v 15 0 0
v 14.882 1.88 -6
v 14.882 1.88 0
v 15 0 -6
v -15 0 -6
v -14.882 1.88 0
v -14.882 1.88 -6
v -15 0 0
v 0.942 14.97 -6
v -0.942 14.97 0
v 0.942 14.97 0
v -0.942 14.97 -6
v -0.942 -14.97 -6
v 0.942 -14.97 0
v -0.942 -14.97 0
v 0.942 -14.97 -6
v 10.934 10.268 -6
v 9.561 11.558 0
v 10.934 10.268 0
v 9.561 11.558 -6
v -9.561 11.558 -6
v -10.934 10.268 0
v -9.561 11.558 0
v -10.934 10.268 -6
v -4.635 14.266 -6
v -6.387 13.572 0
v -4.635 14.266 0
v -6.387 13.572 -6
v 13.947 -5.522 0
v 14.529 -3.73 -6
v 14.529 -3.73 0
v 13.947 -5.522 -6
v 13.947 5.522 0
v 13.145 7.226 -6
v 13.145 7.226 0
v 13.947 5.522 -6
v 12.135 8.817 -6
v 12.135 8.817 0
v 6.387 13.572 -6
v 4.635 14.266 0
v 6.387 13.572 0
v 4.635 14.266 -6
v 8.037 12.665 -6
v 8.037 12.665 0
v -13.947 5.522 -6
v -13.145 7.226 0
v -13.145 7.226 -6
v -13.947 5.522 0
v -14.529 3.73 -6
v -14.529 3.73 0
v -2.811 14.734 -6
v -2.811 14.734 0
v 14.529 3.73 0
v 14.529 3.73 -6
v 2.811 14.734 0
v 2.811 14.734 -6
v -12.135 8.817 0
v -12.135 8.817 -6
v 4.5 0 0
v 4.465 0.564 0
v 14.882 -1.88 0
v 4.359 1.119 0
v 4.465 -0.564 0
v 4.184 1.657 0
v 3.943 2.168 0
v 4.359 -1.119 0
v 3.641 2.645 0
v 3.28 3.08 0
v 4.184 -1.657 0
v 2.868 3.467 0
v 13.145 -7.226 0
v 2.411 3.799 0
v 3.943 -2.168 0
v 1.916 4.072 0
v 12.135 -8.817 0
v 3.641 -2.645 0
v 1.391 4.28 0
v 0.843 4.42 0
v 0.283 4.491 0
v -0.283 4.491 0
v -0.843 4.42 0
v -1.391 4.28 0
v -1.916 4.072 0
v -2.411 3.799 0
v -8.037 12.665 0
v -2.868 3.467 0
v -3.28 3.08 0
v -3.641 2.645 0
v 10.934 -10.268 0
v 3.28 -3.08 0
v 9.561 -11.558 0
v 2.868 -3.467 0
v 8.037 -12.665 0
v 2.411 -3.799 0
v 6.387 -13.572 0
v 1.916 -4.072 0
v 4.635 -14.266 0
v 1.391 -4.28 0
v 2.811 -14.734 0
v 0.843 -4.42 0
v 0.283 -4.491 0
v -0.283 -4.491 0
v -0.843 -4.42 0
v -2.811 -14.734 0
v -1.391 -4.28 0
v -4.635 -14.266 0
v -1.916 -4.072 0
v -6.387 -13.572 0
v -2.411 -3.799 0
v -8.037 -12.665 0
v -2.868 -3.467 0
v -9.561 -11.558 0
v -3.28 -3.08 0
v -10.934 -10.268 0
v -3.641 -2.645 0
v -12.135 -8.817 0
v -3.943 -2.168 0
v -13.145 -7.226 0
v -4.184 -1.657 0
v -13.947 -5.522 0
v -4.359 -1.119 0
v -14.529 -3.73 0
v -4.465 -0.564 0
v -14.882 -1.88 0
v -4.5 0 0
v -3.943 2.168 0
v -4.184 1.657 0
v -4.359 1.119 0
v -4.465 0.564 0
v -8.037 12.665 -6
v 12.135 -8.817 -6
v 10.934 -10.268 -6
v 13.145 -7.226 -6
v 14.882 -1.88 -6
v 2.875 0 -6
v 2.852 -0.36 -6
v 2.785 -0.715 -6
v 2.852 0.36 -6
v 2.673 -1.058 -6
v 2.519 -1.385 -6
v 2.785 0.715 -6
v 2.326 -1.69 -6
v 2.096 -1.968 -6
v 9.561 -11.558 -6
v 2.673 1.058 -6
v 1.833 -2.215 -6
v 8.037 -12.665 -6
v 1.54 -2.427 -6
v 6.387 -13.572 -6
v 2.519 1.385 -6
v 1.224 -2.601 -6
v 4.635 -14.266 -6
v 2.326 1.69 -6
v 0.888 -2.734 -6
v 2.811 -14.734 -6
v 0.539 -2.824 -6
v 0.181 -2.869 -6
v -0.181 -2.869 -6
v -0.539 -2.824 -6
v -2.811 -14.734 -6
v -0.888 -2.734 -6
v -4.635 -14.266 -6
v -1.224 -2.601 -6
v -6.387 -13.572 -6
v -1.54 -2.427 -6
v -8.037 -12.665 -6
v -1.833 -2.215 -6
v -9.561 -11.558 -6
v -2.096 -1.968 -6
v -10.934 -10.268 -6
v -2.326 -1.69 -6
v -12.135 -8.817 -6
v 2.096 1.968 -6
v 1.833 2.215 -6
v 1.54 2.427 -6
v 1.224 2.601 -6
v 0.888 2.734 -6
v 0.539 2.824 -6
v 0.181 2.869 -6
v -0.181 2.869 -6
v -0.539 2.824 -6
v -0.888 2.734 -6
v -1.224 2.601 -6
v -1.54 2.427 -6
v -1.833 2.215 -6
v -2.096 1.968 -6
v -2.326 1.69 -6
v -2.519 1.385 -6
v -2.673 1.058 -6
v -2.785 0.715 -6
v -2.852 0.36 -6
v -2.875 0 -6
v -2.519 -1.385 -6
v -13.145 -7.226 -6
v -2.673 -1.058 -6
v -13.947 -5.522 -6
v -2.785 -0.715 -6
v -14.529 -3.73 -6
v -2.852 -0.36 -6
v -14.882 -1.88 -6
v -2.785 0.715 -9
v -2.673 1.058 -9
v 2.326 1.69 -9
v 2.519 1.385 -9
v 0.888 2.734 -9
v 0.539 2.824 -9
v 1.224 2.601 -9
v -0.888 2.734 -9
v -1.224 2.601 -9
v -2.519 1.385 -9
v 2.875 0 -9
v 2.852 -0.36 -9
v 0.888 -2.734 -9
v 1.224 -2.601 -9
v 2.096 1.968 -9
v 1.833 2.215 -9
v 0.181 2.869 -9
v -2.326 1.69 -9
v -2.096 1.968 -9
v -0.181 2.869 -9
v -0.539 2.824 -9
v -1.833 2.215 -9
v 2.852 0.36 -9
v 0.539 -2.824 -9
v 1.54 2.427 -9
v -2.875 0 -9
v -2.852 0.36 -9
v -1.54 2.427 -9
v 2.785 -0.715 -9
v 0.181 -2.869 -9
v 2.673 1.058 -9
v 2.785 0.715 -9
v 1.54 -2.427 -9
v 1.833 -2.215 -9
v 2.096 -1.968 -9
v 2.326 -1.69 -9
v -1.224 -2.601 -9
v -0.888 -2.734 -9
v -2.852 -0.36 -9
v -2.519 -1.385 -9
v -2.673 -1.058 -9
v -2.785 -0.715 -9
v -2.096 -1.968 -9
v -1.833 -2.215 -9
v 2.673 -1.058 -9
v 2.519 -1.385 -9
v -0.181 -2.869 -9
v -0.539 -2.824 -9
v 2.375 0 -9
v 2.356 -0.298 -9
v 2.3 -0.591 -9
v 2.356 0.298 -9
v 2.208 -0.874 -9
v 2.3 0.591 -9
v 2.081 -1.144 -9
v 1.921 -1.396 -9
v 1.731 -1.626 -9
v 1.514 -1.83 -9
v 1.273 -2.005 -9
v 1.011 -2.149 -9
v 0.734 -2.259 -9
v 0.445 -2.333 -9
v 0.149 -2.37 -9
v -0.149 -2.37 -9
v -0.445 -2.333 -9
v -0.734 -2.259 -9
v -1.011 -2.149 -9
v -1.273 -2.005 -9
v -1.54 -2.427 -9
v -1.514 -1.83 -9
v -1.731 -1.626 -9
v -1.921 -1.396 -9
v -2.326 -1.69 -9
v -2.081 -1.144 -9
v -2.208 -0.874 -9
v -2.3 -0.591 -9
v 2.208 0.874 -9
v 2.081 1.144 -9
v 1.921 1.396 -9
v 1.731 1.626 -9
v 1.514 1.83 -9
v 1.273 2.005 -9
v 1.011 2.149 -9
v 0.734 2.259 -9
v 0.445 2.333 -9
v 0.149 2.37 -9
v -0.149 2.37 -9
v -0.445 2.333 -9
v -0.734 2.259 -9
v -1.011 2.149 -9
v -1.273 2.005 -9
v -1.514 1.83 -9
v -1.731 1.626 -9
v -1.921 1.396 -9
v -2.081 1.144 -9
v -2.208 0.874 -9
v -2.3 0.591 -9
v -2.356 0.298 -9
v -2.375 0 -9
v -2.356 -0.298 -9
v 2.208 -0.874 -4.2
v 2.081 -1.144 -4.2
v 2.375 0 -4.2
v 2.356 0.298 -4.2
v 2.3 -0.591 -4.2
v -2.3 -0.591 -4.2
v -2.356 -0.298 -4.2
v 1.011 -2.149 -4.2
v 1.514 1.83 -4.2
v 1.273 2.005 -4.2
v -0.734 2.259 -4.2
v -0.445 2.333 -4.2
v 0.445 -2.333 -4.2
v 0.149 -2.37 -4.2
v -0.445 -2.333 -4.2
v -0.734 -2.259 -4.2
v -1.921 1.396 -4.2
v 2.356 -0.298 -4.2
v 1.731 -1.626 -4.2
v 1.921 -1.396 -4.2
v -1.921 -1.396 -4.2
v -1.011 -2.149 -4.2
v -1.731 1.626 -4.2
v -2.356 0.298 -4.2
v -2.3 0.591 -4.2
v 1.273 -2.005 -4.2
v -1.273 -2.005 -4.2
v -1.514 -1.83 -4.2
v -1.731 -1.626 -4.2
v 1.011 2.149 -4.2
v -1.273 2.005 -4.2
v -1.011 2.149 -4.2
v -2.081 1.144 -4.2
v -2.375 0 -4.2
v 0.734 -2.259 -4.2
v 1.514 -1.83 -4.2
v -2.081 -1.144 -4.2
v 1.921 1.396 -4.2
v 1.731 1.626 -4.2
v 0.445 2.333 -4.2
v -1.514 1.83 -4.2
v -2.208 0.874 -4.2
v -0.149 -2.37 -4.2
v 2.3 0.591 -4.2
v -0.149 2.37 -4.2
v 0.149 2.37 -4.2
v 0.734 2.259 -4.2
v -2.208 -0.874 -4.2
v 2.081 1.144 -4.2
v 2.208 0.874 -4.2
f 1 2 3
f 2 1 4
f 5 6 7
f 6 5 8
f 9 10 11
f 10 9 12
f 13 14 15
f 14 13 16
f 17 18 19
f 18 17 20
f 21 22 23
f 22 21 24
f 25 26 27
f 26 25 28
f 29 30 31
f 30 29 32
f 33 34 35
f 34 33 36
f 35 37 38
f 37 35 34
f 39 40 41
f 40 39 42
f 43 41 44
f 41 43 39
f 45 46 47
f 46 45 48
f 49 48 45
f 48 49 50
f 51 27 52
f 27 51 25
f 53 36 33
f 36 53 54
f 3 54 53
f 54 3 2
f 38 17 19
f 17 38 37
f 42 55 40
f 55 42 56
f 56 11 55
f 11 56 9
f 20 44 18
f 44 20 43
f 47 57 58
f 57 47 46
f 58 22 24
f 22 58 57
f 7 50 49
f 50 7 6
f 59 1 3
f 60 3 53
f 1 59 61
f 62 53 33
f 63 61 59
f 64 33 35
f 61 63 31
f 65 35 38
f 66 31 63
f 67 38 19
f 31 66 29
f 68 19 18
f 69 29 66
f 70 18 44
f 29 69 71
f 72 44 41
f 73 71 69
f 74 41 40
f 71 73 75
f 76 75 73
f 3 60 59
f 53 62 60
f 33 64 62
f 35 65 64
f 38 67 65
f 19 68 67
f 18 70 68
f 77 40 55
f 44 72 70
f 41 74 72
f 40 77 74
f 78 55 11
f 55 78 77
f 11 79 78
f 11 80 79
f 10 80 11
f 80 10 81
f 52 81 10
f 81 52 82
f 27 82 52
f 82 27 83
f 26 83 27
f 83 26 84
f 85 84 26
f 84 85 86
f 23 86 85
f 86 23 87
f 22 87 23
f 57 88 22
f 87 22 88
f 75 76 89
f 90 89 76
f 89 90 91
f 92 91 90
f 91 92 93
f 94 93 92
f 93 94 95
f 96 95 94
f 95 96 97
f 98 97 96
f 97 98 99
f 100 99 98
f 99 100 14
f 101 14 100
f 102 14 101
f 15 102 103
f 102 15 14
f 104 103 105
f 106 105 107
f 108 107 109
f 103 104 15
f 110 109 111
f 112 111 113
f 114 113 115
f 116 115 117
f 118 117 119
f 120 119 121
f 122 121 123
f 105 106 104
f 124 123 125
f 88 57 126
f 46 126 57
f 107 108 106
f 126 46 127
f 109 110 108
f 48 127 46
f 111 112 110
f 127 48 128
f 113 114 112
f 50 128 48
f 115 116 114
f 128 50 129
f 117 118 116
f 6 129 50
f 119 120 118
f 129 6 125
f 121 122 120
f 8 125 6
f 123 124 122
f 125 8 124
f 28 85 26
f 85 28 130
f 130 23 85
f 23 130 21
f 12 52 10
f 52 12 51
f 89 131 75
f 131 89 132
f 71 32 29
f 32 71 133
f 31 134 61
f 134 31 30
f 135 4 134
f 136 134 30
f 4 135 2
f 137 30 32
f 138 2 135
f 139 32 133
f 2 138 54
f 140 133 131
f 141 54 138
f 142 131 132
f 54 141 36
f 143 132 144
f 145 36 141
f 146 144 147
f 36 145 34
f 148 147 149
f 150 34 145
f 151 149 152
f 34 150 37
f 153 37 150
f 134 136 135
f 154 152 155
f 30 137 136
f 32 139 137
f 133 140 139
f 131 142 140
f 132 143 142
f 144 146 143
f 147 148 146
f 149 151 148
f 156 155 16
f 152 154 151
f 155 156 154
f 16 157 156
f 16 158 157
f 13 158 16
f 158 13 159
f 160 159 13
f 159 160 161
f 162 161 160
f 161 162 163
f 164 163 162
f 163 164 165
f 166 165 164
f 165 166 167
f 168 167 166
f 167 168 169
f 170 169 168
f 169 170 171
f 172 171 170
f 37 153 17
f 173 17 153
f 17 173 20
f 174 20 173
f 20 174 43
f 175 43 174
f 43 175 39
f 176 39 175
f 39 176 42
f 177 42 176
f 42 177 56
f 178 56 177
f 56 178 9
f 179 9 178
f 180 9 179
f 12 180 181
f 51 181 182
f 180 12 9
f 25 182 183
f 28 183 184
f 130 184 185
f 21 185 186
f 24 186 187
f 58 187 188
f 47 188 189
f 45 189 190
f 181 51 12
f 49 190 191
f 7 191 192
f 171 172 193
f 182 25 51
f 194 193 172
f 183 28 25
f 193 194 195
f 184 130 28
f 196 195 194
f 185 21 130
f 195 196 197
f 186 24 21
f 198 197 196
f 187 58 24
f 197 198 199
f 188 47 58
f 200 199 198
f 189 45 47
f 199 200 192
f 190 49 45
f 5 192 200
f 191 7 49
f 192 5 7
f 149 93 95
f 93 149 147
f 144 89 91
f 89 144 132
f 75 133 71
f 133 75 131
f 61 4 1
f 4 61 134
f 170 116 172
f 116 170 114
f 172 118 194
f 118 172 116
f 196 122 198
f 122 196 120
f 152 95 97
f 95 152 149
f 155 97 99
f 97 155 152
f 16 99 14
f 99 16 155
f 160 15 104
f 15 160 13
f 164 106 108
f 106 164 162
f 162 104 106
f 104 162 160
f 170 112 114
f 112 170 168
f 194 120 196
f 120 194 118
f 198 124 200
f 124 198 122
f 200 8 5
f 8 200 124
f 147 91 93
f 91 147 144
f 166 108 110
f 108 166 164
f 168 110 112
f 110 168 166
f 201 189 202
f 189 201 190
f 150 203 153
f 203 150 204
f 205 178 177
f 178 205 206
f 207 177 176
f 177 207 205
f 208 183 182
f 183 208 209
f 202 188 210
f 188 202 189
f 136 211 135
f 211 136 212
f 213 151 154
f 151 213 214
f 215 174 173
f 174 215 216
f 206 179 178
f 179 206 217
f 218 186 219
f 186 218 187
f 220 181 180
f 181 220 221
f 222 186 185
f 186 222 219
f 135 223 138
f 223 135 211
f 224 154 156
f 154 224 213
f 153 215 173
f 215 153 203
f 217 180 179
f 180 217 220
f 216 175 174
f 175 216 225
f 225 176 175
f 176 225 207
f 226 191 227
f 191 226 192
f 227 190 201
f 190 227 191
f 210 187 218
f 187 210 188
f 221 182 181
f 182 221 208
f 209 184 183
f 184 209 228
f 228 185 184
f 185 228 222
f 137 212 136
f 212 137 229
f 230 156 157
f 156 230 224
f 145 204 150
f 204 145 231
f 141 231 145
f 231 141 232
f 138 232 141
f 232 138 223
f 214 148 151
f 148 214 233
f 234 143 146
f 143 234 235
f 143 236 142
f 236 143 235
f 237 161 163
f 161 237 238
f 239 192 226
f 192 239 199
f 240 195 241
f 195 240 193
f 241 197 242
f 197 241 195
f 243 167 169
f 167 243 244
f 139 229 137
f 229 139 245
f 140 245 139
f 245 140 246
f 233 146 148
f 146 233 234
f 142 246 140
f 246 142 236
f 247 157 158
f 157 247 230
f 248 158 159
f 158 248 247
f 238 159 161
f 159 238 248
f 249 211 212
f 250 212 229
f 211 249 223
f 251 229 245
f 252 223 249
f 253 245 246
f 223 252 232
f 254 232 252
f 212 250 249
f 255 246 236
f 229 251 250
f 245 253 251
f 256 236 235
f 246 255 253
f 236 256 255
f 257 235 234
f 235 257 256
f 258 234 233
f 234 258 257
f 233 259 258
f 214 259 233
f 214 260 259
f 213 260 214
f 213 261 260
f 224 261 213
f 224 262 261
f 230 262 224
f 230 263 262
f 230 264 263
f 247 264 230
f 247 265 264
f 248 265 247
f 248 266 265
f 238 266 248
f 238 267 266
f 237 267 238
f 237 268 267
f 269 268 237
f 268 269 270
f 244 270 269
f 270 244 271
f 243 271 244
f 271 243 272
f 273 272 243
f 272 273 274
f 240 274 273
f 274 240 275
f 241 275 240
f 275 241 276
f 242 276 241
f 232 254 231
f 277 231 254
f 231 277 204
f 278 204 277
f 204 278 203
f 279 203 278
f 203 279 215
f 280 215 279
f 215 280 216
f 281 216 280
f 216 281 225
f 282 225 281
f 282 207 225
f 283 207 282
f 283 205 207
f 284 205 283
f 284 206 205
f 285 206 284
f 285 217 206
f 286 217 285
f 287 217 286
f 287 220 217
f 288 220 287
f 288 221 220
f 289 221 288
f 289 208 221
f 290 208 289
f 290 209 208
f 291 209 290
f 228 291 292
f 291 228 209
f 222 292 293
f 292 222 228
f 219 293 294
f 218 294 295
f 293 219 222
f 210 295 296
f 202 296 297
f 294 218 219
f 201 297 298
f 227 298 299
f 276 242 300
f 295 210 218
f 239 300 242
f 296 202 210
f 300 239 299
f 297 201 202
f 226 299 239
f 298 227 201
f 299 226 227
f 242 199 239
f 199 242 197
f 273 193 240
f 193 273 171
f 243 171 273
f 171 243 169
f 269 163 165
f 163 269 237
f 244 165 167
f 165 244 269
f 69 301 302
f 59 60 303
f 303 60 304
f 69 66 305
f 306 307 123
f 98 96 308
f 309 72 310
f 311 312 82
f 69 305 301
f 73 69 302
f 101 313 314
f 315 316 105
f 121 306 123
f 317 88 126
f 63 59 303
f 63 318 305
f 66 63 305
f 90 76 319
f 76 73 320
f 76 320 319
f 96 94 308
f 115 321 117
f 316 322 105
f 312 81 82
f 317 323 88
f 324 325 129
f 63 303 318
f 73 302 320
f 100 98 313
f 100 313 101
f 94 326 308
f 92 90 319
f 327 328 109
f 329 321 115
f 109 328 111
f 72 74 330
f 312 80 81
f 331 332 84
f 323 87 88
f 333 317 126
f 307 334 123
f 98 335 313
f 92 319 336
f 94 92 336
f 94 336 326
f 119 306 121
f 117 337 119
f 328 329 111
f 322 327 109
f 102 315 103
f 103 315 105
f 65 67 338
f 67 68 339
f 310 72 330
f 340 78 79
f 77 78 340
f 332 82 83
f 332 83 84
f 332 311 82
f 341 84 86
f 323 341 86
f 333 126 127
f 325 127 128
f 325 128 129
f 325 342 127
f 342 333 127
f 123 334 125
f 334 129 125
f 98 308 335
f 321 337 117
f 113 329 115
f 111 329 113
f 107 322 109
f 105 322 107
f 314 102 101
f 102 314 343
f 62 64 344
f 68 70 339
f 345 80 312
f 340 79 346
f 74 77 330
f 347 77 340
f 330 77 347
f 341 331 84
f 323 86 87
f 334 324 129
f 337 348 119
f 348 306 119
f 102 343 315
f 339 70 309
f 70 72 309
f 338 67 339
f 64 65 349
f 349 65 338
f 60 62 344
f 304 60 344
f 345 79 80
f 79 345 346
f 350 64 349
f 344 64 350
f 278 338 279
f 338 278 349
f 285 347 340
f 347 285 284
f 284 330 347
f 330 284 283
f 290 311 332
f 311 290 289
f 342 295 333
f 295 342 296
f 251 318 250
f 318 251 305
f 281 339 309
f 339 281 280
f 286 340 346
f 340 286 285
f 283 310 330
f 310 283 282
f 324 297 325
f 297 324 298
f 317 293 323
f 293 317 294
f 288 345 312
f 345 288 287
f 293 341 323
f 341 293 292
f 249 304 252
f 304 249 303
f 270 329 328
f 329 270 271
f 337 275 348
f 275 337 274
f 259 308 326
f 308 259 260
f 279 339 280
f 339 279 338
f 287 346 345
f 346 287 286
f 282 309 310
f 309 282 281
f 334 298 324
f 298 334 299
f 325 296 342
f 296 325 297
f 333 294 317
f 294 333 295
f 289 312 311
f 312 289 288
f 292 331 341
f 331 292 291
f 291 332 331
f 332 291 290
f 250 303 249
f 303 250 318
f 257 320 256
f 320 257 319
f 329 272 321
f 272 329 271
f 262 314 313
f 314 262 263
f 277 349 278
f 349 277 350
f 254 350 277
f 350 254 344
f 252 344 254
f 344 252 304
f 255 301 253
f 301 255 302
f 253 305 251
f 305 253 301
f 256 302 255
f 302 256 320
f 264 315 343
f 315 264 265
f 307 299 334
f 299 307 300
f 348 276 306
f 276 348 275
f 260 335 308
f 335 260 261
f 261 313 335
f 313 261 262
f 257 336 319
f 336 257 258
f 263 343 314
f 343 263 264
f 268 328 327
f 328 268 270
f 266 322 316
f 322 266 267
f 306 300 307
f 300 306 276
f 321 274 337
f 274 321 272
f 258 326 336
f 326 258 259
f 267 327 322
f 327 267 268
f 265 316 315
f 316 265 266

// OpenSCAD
$fn = 50;


difference() {
	union() {
		translate(v = [0, 0, -6.0000000000]) {
			cylinder(h = 6, r = 15.0000000000);
		}
		translate(v = [0, 0, -9.0000000000]) {
			cylinder(h = 9, r = 2.8750000000);
		}
	}
	union() {
		translate(v = [0, 0, 0]) {
			rotate(a = [0, 0, 0]) {
				difference() {
					union() {
						translate(v = [0, 0, -9.0000000000]) {
							cylinder(h = 9, r = 2.2500000000);
						}
						translate(v = [0, 0, -4.2000000000]) {
							cylinder(h = 4.2000000000, r1 = 2.3750000000, r2 = 4.5000000000);
						}
						translate(v = [0, 0, -9.0000000000]) {
							cylinder(h = 9, r = 2.3750000000);
						}
						translate(v = [0, 0, -9.0000000000]) {
							cylinder(h = 9, r = 2.2500000000);
						}
					}
					union();
				}
			}
		}
	}
}
